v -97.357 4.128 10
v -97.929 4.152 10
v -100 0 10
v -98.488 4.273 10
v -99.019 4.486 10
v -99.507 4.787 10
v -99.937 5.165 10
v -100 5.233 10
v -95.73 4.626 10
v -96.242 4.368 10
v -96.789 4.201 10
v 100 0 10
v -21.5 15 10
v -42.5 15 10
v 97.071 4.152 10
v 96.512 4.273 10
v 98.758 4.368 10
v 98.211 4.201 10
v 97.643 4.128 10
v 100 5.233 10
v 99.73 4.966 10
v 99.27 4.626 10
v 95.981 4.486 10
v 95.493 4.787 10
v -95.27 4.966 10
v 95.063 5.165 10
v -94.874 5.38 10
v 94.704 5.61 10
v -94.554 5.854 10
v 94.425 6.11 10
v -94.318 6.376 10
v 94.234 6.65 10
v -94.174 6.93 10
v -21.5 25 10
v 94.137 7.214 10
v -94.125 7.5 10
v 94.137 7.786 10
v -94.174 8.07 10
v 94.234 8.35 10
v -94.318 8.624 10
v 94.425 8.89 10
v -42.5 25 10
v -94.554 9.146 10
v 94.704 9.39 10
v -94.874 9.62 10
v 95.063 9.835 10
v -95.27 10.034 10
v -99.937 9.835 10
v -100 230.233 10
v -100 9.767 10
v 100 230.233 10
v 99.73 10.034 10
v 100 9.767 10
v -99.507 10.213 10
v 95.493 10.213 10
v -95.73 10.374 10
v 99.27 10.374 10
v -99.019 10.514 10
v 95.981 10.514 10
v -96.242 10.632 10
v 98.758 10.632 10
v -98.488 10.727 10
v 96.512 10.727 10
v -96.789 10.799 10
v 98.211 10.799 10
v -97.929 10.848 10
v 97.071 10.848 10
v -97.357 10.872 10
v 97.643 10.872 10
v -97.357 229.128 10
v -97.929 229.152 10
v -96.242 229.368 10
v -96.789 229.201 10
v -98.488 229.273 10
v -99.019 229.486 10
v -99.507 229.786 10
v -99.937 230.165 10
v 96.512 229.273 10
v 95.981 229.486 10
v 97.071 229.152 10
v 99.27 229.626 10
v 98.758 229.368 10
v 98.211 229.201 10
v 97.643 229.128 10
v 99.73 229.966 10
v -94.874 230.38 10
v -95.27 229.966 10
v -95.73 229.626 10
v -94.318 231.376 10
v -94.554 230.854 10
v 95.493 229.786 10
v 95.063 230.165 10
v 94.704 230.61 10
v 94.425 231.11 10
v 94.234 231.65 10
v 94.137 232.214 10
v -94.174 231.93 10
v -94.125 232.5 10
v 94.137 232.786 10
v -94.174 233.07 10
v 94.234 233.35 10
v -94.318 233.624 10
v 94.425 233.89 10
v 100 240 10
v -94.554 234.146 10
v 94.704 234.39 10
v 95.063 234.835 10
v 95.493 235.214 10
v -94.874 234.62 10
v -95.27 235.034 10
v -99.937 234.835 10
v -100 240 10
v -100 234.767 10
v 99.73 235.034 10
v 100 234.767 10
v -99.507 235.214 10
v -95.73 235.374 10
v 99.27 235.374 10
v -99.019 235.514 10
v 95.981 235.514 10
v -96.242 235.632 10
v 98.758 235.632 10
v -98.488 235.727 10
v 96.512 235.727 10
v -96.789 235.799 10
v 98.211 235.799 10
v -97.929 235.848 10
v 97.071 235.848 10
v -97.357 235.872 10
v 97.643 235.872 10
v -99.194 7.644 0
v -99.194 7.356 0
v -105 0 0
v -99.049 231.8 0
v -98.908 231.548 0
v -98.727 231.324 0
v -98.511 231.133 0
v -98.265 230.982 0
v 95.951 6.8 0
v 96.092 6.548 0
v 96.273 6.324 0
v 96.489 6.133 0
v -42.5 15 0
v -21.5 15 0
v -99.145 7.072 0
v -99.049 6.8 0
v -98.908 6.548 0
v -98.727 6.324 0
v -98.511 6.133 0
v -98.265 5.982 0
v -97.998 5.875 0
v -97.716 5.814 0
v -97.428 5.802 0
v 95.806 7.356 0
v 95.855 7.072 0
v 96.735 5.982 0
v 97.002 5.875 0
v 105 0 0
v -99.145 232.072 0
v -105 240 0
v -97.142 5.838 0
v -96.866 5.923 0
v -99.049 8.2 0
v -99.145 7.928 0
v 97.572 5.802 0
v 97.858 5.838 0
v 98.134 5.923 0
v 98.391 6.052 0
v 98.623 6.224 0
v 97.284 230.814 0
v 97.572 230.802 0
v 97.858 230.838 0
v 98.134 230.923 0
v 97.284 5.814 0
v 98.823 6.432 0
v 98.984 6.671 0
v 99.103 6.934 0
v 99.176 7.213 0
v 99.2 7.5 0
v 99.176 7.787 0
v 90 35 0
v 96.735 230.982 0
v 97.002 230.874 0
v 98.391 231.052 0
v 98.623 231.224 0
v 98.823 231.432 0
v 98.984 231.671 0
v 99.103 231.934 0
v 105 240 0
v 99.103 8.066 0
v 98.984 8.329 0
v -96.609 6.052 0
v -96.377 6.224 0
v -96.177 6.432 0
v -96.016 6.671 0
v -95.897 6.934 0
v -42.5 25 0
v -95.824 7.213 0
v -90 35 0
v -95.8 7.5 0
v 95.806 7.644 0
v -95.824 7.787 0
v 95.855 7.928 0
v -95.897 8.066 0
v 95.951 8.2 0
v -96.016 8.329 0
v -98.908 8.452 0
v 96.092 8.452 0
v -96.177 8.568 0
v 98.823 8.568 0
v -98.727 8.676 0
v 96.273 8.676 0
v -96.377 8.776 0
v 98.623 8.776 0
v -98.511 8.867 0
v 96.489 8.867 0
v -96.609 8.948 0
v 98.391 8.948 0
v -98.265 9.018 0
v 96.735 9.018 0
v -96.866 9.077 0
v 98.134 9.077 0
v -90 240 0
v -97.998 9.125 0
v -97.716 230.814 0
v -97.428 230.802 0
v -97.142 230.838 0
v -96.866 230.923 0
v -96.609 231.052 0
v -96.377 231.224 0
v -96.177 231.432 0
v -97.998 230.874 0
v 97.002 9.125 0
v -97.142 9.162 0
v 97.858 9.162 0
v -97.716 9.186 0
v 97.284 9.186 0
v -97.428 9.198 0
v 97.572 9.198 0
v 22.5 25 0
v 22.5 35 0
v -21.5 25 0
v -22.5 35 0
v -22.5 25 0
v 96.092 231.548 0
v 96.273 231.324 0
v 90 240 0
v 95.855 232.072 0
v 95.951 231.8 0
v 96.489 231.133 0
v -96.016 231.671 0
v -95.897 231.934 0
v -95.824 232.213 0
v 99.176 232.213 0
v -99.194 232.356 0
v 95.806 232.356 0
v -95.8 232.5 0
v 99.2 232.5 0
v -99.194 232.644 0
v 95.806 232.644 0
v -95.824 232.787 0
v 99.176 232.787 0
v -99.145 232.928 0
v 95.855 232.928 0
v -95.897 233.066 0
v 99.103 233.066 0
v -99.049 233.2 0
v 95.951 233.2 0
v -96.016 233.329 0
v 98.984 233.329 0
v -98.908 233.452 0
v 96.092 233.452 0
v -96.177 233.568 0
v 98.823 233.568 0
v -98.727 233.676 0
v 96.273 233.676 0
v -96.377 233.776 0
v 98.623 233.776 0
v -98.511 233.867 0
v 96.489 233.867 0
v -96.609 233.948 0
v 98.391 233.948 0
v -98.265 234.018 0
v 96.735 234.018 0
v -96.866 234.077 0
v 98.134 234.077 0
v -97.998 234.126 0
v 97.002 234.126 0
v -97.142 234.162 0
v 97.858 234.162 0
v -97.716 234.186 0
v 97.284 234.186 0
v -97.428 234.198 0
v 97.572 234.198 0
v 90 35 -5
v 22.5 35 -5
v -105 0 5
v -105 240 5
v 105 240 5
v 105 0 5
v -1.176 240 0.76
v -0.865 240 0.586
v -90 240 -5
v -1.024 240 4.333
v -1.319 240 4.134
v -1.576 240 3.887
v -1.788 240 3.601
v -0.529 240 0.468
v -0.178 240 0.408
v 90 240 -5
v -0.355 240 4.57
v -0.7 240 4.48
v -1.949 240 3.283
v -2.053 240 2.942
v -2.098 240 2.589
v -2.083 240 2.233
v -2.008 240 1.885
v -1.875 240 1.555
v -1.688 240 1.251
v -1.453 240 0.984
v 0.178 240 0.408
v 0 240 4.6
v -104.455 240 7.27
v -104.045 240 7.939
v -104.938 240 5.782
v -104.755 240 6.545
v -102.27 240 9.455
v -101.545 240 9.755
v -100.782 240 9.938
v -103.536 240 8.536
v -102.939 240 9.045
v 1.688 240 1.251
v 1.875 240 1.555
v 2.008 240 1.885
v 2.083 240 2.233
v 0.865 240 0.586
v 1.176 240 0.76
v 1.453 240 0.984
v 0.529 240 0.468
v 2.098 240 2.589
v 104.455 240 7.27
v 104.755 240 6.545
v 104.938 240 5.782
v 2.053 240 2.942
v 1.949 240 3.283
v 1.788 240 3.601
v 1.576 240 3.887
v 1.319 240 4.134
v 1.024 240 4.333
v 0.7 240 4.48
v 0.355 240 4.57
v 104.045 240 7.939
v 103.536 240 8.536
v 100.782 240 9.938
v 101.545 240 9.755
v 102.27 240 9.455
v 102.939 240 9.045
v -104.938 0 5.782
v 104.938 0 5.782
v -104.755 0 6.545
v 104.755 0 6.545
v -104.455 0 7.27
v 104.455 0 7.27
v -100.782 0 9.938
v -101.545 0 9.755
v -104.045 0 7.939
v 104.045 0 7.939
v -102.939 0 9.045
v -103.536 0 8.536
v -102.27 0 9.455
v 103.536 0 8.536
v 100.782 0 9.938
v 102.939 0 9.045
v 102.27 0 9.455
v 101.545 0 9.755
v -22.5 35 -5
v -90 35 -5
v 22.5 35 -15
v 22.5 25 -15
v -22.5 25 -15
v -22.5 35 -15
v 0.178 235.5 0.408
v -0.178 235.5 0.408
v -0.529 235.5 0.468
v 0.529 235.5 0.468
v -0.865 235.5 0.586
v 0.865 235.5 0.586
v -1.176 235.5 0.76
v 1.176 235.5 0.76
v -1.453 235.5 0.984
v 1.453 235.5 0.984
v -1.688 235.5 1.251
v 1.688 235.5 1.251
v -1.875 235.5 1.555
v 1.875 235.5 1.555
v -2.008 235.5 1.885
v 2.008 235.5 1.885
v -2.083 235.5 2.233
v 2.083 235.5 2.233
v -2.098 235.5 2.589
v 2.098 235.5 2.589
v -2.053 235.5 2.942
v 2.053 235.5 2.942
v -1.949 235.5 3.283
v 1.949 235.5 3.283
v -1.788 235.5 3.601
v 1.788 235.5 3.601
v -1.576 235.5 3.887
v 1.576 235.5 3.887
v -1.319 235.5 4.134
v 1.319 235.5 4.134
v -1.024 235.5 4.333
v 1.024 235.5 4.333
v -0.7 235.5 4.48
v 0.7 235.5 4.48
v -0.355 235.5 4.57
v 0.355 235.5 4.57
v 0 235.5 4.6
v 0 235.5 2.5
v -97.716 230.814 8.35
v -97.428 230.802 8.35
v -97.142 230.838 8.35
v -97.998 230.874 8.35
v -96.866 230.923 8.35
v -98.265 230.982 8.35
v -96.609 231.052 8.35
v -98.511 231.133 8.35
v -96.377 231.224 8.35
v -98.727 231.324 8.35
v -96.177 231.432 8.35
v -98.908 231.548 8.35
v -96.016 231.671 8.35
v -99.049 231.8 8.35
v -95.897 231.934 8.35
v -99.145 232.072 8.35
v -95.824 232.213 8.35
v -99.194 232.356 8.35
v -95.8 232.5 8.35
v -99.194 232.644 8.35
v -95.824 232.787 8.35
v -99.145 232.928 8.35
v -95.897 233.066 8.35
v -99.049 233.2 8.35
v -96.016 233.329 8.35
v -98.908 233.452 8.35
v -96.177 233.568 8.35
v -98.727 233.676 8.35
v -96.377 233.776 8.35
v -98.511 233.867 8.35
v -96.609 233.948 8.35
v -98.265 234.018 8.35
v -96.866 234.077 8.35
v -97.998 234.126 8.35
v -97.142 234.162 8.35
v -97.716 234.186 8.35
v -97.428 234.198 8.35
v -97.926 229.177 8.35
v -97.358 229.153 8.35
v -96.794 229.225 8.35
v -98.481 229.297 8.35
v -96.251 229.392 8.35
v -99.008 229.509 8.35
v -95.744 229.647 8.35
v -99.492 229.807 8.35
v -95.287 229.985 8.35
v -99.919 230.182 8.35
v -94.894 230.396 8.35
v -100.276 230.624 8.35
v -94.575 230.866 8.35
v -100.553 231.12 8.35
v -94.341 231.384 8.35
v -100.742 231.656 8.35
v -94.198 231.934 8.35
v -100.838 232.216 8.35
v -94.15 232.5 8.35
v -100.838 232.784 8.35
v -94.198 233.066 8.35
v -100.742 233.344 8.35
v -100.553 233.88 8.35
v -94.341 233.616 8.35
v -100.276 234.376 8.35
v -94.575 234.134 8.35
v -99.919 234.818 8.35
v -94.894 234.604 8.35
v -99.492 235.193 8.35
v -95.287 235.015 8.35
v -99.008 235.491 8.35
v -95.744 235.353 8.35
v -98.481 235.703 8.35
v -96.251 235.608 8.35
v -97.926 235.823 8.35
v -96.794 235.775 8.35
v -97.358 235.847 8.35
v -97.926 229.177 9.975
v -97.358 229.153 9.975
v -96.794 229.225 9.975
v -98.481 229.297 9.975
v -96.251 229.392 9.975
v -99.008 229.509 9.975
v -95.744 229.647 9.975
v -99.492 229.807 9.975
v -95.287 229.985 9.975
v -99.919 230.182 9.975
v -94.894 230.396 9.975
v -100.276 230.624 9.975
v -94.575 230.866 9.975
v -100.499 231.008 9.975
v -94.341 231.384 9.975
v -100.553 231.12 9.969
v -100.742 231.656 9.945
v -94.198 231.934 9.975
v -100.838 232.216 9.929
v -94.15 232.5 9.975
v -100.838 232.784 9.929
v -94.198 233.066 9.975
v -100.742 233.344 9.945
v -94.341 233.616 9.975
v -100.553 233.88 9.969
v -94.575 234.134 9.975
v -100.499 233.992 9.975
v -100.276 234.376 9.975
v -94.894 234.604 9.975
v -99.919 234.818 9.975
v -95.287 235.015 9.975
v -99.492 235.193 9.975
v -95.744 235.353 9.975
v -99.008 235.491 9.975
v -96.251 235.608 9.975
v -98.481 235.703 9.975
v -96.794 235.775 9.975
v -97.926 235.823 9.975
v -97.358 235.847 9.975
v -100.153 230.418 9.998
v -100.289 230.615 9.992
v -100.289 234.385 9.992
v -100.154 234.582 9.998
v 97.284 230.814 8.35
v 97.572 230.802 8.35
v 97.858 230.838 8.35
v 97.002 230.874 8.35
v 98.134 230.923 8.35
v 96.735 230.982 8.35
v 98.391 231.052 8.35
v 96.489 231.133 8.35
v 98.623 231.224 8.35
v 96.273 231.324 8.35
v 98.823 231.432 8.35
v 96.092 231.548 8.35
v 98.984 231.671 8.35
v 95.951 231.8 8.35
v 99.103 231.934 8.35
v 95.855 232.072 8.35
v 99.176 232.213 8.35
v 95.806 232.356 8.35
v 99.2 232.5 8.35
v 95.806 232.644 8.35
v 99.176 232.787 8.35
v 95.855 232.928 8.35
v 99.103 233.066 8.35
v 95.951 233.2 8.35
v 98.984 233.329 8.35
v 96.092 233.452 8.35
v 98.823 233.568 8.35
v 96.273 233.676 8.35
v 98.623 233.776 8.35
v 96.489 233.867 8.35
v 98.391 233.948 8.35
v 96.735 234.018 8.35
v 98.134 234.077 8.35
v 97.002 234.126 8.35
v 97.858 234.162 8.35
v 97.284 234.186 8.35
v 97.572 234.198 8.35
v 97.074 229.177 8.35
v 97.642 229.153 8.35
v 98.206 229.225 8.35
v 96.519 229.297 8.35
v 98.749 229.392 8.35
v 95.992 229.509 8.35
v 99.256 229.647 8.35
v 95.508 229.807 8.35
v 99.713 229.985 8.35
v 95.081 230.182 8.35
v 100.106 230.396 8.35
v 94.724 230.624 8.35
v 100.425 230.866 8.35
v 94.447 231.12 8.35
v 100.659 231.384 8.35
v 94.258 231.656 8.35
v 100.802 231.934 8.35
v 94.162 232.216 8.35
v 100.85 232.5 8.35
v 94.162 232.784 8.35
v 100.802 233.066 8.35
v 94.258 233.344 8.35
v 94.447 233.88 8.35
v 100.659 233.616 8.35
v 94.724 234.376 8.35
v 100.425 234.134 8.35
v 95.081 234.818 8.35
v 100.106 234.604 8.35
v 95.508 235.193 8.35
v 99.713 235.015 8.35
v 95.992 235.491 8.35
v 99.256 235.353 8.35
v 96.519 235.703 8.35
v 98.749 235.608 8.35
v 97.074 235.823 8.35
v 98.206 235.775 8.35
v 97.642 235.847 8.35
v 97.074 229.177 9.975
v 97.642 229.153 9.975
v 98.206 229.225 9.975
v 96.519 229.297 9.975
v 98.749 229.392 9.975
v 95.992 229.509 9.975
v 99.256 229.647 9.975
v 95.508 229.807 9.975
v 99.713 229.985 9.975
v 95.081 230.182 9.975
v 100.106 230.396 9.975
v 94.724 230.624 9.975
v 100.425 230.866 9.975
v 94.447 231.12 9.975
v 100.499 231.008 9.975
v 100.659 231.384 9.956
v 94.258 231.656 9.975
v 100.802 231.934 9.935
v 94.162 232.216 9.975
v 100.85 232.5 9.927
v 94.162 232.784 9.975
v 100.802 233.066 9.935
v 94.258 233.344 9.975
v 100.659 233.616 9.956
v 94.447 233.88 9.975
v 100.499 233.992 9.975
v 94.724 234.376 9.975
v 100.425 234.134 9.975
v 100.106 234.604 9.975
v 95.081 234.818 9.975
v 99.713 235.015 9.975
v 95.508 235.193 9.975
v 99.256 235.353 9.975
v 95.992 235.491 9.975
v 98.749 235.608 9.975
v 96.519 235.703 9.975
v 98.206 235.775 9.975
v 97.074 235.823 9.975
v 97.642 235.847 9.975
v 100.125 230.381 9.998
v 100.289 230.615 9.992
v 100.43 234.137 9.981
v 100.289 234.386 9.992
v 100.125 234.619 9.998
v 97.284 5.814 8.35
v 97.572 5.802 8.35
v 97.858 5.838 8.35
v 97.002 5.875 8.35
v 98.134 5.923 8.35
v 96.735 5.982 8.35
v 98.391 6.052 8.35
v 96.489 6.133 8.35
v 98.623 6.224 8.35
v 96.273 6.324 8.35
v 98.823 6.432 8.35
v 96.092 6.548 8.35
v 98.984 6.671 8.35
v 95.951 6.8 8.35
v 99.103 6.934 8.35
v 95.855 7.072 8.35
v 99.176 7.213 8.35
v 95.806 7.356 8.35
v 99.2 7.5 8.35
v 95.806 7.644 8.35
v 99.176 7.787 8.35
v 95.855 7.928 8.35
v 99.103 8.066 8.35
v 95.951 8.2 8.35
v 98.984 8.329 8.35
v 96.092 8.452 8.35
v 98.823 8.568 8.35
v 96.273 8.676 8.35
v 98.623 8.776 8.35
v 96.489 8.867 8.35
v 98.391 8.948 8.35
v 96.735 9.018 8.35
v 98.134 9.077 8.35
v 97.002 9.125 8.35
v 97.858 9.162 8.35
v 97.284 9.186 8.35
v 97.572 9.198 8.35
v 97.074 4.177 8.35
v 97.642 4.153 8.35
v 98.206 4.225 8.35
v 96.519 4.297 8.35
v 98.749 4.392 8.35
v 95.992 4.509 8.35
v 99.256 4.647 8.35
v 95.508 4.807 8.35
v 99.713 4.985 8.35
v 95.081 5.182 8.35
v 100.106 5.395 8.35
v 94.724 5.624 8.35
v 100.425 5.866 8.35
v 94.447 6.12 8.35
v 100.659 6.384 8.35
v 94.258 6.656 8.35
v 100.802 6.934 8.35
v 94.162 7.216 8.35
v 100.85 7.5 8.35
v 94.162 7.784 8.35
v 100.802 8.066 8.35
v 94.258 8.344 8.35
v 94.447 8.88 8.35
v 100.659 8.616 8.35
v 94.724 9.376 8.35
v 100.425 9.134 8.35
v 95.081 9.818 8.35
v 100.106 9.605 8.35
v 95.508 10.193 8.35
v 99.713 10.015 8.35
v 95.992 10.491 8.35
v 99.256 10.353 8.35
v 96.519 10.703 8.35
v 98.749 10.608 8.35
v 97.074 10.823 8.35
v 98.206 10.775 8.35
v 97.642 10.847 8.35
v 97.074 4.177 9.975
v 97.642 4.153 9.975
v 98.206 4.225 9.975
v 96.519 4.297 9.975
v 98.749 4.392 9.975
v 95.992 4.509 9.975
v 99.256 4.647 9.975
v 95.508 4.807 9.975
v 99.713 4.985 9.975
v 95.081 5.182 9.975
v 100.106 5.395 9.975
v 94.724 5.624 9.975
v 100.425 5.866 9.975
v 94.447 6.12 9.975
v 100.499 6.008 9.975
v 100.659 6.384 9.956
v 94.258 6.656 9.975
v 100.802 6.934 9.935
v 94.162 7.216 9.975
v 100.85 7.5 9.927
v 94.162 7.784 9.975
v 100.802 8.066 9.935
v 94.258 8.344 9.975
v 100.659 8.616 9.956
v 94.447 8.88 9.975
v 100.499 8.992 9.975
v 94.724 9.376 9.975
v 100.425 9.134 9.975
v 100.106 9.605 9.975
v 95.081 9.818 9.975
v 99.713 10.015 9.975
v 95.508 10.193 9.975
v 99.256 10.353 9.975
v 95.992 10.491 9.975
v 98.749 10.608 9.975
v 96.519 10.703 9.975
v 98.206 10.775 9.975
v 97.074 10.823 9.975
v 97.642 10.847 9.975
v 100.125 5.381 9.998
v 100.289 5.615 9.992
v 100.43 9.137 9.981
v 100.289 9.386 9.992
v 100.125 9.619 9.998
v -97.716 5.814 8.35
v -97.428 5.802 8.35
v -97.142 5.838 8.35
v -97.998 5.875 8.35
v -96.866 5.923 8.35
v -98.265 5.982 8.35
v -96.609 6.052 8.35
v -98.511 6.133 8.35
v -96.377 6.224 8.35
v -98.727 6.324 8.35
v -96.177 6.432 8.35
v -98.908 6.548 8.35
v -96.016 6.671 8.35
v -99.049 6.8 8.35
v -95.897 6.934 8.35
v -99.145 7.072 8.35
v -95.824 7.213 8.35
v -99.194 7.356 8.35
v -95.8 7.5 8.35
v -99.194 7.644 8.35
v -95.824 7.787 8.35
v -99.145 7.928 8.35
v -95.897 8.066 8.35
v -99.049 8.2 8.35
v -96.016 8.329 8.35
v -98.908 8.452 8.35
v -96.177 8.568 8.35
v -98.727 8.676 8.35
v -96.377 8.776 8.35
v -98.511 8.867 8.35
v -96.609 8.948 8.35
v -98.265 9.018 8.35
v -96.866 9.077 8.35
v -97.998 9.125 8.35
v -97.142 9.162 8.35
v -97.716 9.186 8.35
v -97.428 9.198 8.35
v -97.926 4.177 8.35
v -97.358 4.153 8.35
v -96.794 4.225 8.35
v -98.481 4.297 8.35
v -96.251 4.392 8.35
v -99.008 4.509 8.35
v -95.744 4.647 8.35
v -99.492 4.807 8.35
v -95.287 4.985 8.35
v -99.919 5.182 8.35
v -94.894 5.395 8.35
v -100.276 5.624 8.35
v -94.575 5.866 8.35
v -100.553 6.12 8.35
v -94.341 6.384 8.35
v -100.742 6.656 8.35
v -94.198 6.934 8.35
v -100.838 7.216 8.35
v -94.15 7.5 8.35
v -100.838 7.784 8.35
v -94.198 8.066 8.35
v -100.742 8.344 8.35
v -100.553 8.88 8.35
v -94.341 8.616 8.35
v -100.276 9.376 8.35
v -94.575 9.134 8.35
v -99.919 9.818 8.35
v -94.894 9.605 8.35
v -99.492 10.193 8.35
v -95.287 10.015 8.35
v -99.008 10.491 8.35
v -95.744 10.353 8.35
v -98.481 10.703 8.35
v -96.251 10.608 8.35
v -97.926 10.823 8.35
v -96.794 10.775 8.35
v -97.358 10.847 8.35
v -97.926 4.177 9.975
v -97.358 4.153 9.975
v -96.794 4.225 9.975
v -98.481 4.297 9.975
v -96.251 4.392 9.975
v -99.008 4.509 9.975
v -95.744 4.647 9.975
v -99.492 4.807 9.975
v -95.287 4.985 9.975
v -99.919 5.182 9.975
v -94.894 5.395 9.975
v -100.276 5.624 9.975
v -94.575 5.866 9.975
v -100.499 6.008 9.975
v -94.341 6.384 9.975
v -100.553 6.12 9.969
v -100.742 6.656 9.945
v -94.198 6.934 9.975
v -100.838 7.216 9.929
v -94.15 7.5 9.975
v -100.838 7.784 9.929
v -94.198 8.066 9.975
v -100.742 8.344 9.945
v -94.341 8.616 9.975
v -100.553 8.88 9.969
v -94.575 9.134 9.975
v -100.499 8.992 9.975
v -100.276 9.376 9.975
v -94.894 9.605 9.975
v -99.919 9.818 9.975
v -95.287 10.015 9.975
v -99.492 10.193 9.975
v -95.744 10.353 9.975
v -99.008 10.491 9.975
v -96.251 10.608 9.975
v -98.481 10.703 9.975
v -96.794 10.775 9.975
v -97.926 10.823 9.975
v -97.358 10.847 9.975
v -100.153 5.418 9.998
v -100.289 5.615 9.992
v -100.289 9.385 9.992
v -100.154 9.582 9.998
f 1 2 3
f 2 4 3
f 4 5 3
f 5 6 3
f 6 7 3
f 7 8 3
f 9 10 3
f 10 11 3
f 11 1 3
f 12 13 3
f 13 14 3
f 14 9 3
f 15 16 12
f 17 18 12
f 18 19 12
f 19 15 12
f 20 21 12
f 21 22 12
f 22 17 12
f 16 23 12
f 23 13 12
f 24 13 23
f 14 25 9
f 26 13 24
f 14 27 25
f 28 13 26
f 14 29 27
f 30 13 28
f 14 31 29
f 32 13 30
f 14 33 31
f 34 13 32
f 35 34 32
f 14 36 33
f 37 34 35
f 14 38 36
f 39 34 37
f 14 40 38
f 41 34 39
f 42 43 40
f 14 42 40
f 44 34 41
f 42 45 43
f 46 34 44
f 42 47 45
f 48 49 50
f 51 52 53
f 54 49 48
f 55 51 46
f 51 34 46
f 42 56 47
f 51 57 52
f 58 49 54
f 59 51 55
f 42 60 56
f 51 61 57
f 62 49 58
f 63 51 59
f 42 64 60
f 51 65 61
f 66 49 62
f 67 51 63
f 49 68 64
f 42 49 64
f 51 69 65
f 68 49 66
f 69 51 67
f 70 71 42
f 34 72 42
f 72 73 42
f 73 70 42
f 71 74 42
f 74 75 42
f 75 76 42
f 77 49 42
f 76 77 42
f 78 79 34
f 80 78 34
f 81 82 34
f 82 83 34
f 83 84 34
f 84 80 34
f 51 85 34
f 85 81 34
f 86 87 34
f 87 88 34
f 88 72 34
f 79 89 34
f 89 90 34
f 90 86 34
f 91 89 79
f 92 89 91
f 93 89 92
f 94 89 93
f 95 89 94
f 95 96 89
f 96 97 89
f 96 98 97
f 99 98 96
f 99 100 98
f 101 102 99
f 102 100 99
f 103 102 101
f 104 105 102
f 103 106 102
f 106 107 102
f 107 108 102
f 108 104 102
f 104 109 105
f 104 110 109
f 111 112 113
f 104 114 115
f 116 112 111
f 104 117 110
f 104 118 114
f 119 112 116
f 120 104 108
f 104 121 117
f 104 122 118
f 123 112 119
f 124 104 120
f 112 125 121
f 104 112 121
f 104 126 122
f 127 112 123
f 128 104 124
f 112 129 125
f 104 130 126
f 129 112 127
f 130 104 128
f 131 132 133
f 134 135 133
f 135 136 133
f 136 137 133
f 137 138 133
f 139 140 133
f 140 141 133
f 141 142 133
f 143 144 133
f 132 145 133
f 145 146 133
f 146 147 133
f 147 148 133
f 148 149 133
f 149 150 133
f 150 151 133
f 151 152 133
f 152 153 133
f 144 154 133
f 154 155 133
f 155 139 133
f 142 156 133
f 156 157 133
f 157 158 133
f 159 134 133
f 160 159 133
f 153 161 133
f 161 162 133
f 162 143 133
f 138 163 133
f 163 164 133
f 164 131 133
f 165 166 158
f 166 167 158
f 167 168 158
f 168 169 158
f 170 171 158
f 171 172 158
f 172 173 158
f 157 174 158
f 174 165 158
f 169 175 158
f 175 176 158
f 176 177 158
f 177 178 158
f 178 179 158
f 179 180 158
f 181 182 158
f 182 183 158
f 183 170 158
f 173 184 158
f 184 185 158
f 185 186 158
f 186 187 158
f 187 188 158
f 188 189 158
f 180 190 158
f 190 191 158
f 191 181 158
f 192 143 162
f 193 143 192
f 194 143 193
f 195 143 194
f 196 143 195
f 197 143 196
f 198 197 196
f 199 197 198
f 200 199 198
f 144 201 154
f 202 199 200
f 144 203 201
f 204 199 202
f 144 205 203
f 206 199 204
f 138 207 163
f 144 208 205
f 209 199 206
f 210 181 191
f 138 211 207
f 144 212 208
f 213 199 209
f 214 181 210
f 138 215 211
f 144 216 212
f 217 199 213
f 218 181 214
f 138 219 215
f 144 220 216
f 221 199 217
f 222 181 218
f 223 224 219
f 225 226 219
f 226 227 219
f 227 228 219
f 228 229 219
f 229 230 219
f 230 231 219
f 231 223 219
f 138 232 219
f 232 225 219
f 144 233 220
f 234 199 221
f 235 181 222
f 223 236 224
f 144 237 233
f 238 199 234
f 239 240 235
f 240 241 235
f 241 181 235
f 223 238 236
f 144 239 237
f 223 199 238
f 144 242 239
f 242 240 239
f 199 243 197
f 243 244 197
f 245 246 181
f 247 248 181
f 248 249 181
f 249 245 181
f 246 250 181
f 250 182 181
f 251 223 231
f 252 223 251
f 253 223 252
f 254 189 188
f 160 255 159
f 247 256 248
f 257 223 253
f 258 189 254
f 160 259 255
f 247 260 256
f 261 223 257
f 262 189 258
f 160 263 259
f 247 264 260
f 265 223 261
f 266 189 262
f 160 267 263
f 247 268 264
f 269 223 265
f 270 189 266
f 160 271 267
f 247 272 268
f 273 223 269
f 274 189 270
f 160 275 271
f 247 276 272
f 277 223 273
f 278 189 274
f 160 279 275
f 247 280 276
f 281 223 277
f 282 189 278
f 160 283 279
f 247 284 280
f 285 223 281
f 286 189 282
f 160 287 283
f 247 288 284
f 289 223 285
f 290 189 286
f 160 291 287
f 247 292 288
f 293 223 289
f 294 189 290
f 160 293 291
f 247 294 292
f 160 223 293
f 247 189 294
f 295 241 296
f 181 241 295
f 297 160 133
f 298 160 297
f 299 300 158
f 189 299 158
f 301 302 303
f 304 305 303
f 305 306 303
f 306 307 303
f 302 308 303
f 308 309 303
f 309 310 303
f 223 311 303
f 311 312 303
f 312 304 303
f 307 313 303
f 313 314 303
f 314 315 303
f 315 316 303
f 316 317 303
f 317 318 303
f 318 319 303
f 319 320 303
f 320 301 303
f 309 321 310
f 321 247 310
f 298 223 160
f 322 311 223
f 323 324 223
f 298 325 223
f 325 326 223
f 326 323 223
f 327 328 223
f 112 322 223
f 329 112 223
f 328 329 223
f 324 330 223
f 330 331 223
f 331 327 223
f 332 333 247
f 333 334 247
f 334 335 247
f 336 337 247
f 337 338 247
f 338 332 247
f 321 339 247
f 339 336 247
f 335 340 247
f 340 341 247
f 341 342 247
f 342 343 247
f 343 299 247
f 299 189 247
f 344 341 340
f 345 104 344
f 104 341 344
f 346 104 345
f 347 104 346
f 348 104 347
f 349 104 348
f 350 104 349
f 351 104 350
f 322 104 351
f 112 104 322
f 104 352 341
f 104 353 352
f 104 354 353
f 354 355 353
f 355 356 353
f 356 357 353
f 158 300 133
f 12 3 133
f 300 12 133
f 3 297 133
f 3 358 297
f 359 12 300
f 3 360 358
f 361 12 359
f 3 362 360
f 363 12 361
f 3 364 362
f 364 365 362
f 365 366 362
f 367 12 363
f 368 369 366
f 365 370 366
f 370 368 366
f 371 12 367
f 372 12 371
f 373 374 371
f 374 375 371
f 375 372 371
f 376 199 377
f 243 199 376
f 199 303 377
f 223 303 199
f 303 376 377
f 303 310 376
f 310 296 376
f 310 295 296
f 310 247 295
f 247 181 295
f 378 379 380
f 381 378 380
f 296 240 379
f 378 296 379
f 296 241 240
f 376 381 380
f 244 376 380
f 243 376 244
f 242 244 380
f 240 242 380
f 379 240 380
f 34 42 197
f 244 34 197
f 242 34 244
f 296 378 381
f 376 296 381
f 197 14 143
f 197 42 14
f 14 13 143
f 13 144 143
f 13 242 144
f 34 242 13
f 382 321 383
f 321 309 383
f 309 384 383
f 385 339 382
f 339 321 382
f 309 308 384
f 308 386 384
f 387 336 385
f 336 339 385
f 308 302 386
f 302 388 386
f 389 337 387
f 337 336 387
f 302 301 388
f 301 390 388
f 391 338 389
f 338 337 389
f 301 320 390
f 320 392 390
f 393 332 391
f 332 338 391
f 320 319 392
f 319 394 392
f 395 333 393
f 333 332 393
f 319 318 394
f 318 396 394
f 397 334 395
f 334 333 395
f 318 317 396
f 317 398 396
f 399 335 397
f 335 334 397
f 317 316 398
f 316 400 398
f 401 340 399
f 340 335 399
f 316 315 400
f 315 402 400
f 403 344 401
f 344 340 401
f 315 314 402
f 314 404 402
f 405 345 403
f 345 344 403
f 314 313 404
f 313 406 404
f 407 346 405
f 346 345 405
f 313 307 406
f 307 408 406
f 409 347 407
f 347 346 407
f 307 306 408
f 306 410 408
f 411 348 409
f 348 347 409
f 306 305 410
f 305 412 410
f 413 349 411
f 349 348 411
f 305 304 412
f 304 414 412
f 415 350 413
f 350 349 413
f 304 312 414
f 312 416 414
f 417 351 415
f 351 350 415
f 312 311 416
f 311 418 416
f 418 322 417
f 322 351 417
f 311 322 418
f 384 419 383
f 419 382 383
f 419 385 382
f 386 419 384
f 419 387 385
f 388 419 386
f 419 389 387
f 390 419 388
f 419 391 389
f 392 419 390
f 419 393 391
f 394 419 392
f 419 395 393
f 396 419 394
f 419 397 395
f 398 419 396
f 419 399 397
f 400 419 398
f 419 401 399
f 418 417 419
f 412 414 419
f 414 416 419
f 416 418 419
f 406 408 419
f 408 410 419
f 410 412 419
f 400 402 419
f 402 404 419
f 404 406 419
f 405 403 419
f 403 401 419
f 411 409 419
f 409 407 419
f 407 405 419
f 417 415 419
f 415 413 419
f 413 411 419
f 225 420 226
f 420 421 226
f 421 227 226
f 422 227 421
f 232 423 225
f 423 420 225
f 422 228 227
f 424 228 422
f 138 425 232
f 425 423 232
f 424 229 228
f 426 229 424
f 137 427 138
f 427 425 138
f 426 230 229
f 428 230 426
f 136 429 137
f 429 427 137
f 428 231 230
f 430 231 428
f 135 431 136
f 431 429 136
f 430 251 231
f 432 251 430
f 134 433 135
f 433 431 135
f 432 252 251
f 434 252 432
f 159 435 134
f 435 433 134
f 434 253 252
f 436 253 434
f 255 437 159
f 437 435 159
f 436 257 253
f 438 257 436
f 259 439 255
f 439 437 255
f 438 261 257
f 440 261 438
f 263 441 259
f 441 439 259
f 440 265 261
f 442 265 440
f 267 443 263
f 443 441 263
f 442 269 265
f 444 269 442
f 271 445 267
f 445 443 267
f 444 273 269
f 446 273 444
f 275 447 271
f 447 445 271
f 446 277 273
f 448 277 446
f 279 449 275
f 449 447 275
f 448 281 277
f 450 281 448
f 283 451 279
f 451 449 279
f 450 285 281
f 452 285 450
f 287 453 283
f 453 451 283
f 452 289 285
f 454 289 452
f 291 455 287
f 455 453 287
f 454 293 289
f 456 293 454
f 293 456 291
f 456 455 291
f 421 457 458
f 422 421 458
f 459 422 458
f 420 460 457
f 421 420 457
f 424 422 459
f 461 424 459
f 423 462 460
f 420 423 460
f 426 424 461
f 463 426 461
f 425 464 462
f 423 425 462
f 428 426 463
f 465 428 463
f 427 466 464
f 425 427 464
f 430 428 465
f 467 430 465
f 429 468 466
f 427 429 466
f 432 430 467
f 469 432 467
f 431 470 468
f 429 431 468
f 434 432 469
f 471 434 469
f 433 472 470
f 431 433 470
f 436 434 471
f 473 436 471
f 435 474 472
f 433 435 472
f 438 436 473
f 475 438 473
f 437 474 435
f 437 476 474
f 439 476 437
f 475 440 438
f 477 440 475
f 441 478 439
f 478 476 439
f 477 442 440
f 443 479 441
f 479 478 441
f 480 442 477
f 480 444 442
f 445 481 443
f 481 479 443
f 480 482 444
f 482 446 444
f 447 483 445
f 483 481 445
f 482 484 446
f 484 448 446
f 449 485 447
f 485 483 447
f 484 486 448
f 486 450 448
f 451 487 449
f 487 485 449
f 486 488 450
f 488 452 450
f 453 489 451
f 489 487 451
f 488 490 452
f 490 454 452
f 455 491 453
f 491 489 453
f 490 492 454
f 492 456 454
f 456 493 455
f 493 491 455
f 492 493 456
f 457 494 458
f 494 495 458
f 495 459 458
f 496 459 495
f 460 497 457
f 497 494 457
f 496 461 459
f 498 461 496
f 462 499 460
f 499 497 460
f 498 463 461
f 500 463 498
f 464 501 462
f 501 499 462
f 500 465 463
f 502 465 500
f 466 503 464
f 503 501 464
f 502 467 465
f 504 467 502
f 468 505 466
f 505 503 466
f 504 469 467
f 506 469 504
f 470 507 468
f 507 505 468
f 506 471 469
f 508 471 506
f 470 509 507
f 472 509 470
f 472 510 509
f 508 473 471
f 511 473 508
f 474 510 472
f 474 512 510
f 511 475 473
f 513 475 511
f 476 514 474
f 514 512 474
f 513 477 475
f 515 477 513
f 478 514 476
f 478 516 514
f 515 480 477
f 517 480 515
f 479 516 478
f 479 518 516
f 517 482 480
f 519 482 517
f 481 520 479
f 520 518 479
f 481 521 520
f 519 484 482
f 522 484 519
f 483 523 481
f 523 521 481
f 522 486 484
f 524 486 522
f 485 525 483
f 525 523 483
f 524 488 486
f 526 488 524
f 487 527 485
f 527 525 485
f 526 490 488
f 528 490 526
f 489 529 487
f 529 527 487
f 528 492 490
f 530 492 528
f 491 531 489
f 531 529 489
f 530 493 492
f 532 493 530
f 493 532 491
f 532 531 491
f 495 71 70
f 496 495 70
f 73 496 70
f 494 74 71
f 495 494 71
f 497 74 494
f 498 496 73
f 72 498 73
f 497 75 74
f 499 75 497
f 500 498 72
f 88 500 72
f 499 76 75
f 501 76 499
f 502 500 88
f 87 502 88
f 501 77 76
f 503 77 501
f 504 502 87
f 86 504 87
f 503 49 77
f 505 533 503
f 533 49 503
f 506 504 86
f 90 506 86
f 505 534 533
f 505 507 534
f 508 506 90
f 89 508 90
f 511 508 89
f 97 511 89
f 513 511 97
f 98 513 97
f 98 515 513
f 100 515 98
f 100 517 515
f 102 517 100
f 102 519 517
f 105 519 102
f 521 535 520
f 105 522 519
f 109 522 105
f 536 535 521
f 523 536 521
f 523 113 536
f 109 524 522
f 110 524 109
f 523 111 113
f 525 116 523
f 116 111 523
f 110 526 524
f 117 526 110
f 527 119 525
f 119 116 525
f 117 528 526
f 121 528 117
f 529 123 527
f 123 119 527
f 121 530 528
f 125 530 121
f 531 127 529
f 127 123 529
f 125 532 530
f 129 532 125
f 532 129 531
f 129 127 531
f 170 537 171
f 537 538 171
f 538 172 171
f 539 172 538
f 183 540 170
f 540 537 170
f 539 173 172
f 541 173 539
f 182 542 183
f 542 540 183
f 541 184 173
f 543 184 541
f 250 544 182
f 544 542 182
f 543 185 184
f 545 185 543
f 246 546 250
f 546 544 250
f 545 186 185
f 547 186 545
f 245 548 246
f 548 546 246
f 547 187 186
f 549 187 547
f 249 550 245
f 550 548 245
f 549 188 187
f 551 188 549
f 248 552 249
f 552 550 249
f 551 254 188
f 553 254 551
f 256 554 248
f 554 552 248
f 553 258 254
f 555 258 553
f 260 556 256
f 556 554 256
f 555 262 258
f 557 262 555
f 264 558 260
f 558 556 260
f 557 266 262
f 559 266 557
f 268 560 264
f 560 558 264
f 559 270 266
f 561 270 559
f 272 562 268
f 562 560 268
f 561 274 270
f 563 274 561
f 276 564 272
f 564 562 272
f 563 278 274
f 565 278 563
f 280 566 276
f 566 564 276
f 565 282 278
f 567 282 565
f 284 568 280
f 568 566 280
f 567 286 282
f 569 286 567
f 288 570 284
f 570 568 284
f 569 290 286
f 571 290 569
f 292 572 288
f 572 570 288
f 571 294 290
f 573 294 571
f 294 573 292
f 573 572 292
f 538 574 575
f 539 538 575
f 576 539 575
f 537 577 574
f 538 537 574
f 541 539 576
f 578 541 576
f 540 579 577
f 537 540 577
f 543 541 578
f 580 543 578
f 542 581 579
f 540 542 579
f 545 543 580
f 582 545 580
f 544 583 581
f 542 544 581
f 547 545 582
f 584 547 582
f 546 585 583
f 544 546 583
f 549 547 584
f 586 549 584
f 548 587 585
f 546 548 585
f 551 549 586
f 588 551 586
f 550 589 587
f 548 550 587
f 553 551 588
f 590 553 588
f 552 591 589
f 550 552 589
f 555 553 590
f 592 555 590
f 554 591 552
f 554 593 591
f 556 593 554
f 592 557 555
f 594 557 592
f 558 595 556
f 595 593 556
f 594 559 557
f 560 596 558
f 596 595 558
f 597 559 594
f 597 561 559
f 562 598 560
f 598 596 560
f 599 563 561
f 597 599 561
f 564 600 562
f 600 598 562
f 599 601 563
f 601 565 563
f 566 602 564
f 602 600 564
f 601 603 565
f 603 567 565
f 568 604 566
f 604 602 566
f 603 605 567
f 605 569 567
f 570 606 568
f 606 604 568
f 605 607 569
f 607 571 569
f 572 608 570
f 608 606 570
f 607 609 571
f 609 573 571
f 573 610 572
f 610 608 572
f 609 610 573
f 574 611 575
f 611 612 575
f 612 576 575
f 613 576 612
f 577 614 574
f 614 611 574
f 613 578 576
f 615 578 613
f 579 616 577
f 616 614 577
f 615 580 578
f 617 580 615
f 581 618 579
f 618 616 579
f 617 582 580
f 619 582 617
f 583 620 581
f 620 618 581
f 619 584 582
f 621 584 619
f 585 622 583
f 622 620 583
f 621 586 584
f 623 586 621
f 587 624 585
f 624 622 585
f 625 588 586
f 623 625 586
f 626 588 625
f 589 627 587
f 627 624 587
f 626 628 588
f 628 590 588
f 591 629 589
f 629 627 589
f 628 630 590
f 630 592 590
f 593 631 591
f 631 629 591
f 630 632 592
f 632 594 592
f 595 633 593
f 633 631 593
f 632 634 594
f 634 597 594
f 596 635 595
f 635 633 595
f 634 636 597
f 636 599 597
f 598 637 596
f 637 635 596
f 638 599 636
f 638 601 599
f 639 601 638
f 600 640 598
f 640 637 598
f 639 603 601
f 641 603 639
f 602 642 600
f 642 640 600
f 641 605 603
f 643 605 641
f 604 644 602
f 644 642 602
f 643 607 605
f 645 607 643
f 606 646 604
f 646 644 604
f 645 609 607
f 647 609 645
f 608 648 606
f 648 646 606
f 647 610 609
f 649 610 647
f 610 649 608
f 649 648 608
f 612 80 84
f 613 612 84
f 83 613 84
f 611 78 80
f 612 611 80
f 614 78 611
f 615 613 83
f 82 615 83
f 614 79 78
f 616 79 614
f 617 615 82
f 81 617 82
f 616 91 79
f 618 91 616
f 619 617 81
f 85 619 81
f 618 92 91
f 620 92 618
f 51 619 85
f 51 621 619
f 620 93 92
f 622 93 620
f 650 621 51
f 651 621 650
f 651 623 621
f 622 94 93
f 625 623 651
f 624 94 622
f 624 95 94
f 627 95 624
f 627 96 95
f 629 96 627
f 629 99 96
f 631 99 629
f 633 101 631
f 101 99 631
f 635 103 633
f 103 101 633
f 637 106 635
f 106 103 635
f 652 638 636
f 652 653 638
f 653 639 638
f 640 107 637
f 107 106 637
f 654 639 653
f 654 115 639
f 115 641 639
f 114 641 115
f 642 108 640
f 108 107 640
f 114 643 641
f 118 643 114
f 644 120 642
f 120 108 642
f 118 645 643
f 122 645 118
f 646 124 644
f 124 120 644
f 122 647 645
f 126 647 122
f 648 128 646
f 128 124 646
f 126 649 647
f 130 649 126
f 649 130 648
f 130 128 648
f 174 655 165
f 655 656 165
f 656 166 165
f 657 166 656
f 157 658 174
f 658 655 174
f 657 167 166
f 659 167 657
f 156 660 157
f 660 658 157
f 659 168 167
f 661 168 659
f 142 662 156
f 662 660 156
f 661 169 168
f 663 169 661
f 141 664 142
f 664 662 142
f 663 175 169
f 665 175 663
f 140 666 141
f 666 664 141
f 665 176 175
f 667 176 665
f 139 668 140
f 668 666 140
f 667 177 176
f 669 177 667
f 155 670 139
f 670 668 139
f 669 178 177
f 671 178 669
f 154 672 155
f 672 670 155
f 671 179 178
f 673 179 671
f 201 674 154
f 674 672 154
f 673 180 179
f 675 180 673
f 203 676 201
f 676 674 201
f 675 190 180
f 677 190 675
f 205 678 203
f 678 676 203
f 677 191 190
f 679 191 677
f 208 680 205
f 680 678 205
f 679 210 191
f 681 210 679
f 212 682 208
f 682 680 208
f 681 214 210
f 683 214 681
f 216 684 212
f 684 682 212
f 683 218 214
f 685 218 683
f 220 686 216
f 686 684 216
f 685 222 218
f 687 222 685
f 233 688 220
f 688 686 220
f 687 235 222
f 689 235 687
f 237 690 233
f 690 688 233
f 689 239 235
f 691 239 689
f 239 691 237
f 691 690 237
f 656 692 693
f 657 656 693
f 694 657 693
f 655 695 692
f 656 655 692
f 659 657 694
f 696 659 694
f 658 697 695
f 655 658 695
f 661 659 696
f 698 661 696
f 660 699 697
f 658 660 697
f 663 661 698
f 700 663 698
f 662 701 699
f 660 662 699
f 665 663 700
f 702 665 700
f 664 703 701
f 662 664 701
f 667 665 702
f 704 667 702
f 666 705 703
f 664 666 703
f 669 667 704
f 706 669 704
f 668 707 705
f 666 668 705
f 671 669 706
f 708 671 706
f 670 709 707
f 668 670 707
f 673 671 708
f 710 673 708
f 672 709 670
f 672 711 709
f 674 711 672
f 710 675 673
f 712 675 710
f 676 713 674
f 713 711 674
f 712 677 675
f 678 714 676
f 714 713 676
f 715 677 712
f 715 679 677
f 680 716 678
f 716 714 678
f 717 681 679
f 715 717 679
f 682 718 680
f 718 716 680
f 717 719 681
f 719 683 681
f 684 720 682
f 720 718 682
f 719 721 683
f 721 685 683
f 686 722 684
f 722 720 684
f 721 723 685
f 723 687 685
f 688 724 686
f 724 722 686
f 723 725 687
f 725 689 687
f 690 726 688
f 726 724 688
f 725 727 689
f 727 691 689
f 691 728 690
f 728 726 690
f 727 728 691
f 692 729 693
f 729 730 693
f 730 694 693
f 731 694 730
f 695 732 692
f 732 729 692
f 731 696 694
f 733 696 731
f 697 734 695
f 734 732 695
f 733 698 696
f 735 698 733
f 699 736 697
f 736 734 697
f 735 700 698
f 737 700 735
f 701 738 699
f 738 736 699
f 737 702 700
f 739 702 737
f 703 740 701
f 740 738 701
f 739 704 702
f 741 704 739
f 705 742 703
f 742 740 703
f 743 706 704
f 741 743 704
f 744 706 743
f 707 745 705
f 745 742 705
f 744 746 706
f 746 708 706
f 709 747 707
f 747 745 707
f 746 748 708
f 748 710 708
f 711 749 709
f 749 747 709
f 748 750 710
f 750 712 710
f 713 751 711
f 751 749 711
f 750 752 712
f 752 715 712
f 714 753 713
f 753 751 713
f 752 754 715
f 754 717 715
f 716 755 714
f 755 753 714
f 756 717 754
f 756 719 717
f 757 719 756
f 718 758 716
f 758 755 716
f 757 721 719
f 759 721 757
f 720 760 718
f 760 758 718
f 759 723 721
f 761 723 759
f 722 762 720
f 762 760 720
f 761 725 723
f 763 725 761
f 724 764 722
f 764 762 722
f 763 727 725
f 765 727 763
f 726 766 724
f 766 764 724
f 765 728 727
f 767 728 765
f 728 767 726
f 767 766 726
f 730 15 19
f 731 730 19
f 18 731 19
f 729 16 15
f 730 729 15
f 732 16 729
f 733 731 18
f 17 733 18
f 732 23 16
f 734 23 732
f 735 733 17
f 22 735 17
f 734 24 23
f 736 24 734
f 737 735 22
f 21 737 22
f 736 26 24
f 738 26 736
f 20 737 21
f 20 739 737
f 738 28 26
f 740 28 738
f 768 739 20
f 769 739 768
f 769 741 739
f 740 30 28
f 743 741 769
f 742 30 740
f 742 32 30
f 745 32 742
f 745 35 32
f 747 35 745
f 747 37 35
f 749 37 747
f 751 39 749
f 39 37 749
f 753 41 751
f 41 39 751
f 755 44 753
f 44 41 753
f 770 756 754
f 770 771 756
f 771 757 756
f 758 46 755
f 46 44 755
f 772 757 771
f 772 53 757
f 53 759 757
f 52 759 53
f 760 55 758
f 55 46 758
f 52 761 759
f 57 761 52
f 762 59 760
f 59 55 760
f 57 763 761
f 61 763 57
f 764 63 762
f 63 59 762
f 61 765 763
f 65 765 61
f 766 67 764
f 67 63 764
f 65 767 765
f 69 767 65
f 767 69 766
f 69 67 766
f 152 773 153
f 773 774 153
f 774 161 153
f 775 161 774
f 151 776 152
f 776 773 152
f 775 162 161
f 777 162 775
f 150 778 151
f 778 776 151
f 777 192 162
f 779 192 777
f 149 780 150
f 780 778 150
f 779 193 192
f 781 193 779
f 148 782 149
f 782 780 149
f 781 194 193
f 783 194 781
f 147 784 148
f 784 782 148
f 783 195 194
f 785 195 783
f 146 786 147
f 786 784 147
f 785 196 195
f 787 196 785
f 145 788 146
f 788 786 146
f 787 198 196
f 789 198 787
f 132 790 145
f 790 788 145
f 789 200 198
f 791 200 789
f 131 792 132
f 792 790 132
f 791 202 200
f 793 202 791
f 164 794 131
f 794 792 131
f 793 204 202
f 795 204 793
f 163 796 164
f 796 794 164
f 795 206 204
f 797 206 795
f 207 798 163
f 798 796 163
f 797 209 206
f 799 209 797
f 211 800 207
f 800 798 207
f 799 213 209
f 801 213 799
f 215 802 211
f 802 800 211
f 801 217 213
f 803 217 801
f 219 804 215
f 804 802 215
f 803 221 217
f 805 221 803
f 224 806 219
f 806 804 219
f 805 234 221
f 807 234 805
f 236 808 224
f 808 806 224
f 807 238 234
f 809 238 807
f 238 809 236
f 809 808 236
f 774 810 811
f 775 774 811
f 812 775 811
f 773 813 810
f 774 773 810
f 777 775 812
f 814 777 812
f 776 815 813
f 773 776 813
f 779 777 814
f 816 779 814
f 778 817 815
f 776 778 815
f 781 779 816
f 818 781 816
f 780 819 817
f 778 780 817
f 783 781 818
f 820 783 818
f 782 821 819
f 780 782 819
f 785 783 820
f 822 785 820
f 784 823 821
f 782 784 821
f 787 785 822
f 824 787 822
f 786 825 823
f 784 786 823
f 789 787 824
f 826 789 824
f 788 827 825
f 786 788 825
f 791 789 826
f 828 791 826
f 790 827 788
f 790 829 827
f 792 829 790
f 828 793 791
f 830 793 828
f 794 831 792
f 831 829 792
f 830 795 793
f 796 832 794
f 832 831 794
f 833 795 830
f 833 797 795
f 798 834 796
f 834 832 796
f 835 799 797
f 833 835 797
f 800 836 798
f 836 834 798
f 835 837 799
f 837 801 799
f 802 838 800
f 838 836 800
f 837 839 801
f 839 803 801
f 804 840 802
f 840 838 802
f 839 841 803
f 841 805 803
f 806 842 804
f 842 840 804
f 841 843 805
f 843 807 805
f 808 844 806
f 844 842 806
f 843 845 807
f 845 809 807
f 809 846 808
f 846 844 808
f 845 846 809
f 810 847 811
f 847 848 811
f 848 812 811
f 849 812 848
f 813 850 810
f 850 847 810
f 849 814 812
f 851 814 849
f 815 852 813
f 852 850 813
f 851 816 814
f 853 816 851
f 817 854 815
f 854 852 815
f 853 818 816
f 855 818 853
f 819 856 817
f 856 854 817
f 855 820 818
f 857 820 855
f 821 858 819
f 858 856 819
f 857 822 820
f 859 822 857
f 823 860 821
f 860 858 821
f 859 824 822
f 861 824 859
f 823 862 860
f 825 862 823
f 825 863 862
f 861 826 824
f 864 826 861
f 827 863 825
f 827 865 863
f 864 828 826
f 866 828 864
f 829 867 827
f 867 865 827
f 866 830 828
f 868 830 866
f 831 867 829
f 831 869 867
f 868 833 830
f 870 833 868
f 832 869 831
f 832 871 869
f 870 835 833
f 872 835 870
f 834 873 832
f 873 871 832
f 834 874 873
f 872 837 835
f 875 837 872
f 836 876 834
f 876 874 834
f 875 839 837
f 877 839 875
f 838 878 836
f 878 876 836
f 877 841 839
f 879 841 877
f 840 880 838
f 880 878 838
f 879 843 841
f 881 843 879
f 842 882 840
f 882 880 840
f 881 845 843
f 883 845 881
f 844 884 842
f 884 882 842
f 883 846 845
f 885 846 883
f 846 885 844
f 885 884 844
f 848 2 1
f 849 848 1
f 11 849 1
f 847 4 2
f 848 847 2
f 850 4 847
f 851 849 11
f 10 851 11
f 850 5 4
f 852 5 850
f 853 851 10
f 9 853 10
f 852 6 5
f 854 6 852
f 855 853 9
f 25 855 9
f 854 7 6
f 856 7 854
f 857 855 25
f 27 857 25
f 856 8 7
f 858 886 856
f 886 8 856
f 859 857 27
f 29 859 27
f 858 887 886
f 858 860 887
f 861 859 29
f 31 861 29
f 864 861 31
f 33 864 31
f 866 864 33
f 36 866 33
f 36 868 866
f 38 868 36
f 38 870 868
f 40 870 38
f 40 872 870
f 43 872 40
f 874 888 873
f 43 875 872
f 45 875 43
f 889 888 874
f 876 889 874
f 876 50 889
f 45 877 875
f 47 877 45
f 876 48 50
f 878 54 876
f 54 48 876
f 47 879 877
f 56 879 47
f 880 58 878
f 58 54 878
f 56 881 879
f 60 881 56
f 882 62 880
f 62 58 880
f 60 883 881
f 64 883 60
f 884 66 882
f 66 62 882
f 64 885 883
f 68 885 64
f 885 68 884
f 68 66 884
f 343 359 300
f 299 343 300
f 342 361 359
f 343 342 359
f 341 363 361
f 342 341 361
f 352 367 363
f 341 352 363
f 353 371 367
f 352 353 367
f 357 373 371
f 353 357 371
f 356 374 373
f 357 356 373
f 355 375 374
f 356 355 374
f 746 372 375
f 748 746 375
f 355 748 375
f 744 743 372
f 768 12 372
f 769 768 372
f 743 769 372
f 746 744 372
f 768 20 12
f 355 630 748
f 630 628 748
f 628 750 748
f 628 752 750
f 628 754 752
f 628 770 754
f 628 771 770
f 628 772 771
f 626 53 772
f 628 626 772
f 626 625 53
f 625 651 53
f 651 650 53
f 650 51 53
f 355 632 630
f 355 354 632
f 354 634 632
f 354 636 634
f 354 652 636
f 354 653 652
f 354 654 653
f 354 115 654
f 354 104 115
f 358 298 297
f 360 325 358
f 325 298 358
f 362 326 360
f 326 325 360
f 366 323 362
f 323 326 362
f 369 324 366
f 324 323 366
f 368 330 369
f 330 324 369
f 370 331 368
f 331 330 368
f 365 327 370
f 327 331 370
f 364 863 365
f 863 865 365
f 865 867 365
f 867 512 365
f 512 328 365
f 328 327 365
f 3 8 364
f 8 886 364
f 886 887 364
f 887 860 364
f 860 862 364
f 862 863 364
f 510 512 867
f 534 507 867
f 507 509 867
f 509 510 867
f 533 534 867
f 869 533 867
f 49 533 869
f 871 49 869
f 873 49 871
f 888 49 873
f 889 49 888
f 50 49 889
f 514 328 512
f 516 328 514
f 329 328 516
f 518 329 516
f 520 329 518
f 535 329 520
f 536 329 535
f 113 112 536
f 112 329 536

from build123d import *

# Parameters (mm, degrees)
SKETCH3_W           = 210
SKETCH3_H           = 10
BOSS_EXTRUDE1_DEPTH = 240
BOSS_EXTRUDE2_DEPTH = 205
SKETCH6_W           = 45
SKETCH6_H           = 15
BOSS_EXTRUDE3_DEPTH = 10
SKETCH7_R           = 1.65
CUT_EXTRUDE1_DEPTH  = 10
SKETCH8_W           = 21
SKETCH8_H           = 10
CUT_EXTRUDE2_DEPTH  = 10
SKETCH10_R          = 2.1
CUT_EXTRUDE3_DEPTH  = 4.5
FILLET2_R           = 5


with BuildPart() as part:
    # Sketch3 → Boss-Extrude1 (new body)
    with BuildSketch(Plane(origin=(0, 0, 0), x_dir=(1, 0, 0), z_dir=(0, 1, 0))):
        with Locations((0, -5)):
            Rectangle(SKETCH3_W, SKETCH3_H)
    extrude(amount=BOSS_EXTRUDE1_DEPTH)

    # Sketch5 → Boss-Extrude2 (add)
    with BuildSketch(Plane(origin=(0, 240, 0), x_dir=(1, 0, 0), z_dir=(0, 1, 0))):
        Polygon((-90, 0), (-90, 5), (90, 5), (90, 0), (105, 0), (105, -10), (-105, -10), (-105, 0), align=None)
    extrude(amount=-BOSS_EXTRUDE2_DEPTH)

    # Sketch6 → Boss-Extrude3 (add)
    with BuildSketch(Plane(origin=(0, 35, 0), x_dir=(1, 0, 0), z_dir=(0, 1, 0))):
        with Locations((0, 7.5)):
            Rectangle(SKETCH6_W, SKETCH6_H)
    extrude(amount=-BOSS_EXTRUDE3_DEPTH)

    # Sketch7 → Cut-Extrude1 (cut)
    with BuildSketch(Plane.XY.offset(10)):
        with Locations((-97.5, 232.5)):
            Circle(SKETCH7_R)
        with Locations((-97.5, 7.5)):
            Circle(SKETCH7_R)
        with Locations((97.5, 7.5)):
            Circle(SKETCH7_R)
        with Locations((97.5, 232.5)):
            Circle(SKETCH7_R)
    extrude(amount=-CUT_EXTRUDE1_DEPTH, mode=Mode.SUBTRACT)

    # Sketch8 → Cut-Extrude2 (cut)
    with BuildSketch(Plane.XY.offset(10)):
        with Locations((-32, 20)):
            Rectangle(SKETCH8_W, SKETCH8_H)
    extrude(amount=-CUT_EXTRUDE2_DEPTH, mode=Mode.SUBTRACT)

    # Sketch10 → Cut-Extrude3 (cut)
    with BuildSketch(Plane(origin=(0, 240, 0), x_dir=(1, 0, 0), z_dir=(0, 1, 0))):
        with Locations(Location((0, -2.5, 0), (0, 0, 270))):
            Circle(SKETCH10_R)
    extrude(amount=-CUT_EXTRUDE3_DEPTH, mode=Mode.SUBTRACT)

    # Sketch11 → CBORE for M3 SBHCS1 (revolve, cut)
    with BuildSketch(Plane(origin=(-97.5, 232.5, 10), x_dir=(0, -1, 0), z_dir=(1, 0, 0))):
        Polygon((0, 0), (0, 25), (1.7, 25), (1.7, 1.65), (3.35, 1.65), (3.35, 0.025), (3.375, 0), align=None)
    revolve(axis=Axis((-97.5, 232.5, 16.35), (0, 0, -1)), mode=Mode.SUBTRACT)

    # Sketch12 → CBORE for M3 SBHCS2 (revolve, cut)
    with BuildSketch(Plane(origin=(97.5, 232.5, 10), x_dir=(0, -1, 0), z_dir=(1, 0, 0))):
        Polygon((0, 0), (0, 25), (1.7, 25), (1.7, 1.65), (3.35, 1.65), (3.35, 0.025), (3.375, 0), align=None)
    revolve(axis=Axis((97.5, 232.5, 16.35), (0, 0, -1)), mode=Mode.SUBTRACT)

    # Sketch14 → CBORE for M3 SBHCS4 (revolve, cut)
    with BuildSketch(Plane(origin=(97.5, 7.5, 10), x_dir=(0, -1, 0), z_dir=(1, 0, 0))):
        Polygon((0, 0), (0, 25), (1.7, 25), (1.7, 1.65), (3.35, 1.65), (3.35, 0.025), (3.375, 0), align=None)
    revolve(axis=Axis((97.5, 7.5, 16.35), (0, 0, -1)), mode=Mode.SUBTRACT)

    # Sketch18 → CBORE for M3 SBHCS5 (revolve, cut)
    with BuildSketch(Plane(origin=(-97.5, 7.5, 10), x_dir=(0, -1, 0), z_dir=(1, 0, 0))):
        Polygon((0, 0), (0, 25), (1.7, 25), (1.7, 1.65), (3.35, 1.65), (3.35, 0.025), (3.375, 0), align=None)
    revolve(axis=Axis((-97.5, 7.5, 16.35), (0, 0, -1)), mode=Mode.SUBTRACT)

    # Fillet2
    # the kernel refuses this fillet: 5 mm, written as the material it takes off along each edge
    with BuildSketch(Plane(origin=(105, 252.5, 10), x_dir=(0, 0, -1), z_dir=(0, -1, 0)), Plane(origin=(-105, -12.5, 10), x_dir=(0, 0, -1), z_dir=(0, 1, 0))) as fillet2_piece_1:
        with BuildLine():
            CenterArc((FILLET2_R, -FILLET2_R), FILLET2_R, 90, 90)
            Line((0, -FILLET2_R), (0, 0))
            Line((0, 0), (FILLET2_R, 0))
        make_face()
    extrude(amount=265, mode=Mode.SUBTRACT)


solid = part.part
